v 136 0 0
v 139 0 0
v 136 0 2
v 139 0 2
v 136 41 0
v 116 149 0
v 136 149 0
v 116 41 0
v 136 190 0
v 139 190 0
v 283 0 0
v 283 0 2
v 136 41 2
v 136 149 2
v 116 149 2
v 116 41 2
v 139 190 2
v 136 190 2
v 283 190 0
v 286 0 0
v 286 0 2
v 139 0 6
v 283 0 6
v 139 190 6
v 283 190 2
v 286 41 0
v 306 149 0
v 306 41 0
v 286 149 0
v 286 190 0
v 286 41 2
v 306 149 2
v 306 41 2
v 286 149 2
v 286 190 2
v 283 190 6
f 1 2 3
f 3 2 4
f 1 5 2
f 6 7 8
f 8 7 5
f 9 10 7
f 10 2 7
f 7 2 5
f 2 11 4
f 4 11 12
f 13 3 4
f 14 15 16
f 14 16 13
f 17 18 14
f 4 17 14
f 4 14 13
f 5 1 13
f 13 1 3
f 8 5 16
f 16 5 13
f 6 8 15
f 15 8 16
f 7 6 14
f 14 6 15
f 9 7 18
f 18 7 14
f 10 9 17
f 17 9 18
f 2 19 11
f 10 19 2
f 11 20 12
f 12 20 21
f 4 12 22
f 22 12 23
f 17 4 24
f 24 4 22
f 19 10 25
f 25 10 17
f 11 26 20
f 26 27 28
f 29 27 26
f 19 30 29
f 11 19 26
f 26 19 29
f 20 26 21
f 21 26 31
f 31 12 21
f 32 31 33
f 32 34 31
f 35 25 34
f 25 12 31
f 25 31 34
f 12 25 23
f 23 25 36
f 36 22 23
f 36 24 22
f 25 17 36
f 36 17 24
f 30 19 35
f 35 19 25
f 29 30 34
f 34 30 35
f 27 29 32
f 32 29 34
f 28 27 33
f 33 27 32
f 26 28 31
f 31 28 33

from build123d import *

# Parameters (mm, degrees)
PAD_DEPTH    = 2
SKETCH004_W  = 144
SKETCH004_H  = 190
PAD001_DEPTH = 6


with BuildPart() as part:
    # Sketch001 → Pad (new body)
    with BuildSketch(Plane.XY):
        Polygon((136, 0), (286, 0), (286, 41), (306, 41), (306, 149), (286, 149), (286, 190), (136, 190), (136, 149), (116, 149), (116, 41), (136, 41), align=None)
    extrude(amount=PAD_DEPTH)

    # Sketch004 → Pad001 (join)
    with BuildSketch(Plane.XY):
        with Locations((211, 95)):
            Rectangle(SKETCH004_W, SKETCH004_H)
    extrude(amount=PAD001_DEPTH)


solid = part.part
